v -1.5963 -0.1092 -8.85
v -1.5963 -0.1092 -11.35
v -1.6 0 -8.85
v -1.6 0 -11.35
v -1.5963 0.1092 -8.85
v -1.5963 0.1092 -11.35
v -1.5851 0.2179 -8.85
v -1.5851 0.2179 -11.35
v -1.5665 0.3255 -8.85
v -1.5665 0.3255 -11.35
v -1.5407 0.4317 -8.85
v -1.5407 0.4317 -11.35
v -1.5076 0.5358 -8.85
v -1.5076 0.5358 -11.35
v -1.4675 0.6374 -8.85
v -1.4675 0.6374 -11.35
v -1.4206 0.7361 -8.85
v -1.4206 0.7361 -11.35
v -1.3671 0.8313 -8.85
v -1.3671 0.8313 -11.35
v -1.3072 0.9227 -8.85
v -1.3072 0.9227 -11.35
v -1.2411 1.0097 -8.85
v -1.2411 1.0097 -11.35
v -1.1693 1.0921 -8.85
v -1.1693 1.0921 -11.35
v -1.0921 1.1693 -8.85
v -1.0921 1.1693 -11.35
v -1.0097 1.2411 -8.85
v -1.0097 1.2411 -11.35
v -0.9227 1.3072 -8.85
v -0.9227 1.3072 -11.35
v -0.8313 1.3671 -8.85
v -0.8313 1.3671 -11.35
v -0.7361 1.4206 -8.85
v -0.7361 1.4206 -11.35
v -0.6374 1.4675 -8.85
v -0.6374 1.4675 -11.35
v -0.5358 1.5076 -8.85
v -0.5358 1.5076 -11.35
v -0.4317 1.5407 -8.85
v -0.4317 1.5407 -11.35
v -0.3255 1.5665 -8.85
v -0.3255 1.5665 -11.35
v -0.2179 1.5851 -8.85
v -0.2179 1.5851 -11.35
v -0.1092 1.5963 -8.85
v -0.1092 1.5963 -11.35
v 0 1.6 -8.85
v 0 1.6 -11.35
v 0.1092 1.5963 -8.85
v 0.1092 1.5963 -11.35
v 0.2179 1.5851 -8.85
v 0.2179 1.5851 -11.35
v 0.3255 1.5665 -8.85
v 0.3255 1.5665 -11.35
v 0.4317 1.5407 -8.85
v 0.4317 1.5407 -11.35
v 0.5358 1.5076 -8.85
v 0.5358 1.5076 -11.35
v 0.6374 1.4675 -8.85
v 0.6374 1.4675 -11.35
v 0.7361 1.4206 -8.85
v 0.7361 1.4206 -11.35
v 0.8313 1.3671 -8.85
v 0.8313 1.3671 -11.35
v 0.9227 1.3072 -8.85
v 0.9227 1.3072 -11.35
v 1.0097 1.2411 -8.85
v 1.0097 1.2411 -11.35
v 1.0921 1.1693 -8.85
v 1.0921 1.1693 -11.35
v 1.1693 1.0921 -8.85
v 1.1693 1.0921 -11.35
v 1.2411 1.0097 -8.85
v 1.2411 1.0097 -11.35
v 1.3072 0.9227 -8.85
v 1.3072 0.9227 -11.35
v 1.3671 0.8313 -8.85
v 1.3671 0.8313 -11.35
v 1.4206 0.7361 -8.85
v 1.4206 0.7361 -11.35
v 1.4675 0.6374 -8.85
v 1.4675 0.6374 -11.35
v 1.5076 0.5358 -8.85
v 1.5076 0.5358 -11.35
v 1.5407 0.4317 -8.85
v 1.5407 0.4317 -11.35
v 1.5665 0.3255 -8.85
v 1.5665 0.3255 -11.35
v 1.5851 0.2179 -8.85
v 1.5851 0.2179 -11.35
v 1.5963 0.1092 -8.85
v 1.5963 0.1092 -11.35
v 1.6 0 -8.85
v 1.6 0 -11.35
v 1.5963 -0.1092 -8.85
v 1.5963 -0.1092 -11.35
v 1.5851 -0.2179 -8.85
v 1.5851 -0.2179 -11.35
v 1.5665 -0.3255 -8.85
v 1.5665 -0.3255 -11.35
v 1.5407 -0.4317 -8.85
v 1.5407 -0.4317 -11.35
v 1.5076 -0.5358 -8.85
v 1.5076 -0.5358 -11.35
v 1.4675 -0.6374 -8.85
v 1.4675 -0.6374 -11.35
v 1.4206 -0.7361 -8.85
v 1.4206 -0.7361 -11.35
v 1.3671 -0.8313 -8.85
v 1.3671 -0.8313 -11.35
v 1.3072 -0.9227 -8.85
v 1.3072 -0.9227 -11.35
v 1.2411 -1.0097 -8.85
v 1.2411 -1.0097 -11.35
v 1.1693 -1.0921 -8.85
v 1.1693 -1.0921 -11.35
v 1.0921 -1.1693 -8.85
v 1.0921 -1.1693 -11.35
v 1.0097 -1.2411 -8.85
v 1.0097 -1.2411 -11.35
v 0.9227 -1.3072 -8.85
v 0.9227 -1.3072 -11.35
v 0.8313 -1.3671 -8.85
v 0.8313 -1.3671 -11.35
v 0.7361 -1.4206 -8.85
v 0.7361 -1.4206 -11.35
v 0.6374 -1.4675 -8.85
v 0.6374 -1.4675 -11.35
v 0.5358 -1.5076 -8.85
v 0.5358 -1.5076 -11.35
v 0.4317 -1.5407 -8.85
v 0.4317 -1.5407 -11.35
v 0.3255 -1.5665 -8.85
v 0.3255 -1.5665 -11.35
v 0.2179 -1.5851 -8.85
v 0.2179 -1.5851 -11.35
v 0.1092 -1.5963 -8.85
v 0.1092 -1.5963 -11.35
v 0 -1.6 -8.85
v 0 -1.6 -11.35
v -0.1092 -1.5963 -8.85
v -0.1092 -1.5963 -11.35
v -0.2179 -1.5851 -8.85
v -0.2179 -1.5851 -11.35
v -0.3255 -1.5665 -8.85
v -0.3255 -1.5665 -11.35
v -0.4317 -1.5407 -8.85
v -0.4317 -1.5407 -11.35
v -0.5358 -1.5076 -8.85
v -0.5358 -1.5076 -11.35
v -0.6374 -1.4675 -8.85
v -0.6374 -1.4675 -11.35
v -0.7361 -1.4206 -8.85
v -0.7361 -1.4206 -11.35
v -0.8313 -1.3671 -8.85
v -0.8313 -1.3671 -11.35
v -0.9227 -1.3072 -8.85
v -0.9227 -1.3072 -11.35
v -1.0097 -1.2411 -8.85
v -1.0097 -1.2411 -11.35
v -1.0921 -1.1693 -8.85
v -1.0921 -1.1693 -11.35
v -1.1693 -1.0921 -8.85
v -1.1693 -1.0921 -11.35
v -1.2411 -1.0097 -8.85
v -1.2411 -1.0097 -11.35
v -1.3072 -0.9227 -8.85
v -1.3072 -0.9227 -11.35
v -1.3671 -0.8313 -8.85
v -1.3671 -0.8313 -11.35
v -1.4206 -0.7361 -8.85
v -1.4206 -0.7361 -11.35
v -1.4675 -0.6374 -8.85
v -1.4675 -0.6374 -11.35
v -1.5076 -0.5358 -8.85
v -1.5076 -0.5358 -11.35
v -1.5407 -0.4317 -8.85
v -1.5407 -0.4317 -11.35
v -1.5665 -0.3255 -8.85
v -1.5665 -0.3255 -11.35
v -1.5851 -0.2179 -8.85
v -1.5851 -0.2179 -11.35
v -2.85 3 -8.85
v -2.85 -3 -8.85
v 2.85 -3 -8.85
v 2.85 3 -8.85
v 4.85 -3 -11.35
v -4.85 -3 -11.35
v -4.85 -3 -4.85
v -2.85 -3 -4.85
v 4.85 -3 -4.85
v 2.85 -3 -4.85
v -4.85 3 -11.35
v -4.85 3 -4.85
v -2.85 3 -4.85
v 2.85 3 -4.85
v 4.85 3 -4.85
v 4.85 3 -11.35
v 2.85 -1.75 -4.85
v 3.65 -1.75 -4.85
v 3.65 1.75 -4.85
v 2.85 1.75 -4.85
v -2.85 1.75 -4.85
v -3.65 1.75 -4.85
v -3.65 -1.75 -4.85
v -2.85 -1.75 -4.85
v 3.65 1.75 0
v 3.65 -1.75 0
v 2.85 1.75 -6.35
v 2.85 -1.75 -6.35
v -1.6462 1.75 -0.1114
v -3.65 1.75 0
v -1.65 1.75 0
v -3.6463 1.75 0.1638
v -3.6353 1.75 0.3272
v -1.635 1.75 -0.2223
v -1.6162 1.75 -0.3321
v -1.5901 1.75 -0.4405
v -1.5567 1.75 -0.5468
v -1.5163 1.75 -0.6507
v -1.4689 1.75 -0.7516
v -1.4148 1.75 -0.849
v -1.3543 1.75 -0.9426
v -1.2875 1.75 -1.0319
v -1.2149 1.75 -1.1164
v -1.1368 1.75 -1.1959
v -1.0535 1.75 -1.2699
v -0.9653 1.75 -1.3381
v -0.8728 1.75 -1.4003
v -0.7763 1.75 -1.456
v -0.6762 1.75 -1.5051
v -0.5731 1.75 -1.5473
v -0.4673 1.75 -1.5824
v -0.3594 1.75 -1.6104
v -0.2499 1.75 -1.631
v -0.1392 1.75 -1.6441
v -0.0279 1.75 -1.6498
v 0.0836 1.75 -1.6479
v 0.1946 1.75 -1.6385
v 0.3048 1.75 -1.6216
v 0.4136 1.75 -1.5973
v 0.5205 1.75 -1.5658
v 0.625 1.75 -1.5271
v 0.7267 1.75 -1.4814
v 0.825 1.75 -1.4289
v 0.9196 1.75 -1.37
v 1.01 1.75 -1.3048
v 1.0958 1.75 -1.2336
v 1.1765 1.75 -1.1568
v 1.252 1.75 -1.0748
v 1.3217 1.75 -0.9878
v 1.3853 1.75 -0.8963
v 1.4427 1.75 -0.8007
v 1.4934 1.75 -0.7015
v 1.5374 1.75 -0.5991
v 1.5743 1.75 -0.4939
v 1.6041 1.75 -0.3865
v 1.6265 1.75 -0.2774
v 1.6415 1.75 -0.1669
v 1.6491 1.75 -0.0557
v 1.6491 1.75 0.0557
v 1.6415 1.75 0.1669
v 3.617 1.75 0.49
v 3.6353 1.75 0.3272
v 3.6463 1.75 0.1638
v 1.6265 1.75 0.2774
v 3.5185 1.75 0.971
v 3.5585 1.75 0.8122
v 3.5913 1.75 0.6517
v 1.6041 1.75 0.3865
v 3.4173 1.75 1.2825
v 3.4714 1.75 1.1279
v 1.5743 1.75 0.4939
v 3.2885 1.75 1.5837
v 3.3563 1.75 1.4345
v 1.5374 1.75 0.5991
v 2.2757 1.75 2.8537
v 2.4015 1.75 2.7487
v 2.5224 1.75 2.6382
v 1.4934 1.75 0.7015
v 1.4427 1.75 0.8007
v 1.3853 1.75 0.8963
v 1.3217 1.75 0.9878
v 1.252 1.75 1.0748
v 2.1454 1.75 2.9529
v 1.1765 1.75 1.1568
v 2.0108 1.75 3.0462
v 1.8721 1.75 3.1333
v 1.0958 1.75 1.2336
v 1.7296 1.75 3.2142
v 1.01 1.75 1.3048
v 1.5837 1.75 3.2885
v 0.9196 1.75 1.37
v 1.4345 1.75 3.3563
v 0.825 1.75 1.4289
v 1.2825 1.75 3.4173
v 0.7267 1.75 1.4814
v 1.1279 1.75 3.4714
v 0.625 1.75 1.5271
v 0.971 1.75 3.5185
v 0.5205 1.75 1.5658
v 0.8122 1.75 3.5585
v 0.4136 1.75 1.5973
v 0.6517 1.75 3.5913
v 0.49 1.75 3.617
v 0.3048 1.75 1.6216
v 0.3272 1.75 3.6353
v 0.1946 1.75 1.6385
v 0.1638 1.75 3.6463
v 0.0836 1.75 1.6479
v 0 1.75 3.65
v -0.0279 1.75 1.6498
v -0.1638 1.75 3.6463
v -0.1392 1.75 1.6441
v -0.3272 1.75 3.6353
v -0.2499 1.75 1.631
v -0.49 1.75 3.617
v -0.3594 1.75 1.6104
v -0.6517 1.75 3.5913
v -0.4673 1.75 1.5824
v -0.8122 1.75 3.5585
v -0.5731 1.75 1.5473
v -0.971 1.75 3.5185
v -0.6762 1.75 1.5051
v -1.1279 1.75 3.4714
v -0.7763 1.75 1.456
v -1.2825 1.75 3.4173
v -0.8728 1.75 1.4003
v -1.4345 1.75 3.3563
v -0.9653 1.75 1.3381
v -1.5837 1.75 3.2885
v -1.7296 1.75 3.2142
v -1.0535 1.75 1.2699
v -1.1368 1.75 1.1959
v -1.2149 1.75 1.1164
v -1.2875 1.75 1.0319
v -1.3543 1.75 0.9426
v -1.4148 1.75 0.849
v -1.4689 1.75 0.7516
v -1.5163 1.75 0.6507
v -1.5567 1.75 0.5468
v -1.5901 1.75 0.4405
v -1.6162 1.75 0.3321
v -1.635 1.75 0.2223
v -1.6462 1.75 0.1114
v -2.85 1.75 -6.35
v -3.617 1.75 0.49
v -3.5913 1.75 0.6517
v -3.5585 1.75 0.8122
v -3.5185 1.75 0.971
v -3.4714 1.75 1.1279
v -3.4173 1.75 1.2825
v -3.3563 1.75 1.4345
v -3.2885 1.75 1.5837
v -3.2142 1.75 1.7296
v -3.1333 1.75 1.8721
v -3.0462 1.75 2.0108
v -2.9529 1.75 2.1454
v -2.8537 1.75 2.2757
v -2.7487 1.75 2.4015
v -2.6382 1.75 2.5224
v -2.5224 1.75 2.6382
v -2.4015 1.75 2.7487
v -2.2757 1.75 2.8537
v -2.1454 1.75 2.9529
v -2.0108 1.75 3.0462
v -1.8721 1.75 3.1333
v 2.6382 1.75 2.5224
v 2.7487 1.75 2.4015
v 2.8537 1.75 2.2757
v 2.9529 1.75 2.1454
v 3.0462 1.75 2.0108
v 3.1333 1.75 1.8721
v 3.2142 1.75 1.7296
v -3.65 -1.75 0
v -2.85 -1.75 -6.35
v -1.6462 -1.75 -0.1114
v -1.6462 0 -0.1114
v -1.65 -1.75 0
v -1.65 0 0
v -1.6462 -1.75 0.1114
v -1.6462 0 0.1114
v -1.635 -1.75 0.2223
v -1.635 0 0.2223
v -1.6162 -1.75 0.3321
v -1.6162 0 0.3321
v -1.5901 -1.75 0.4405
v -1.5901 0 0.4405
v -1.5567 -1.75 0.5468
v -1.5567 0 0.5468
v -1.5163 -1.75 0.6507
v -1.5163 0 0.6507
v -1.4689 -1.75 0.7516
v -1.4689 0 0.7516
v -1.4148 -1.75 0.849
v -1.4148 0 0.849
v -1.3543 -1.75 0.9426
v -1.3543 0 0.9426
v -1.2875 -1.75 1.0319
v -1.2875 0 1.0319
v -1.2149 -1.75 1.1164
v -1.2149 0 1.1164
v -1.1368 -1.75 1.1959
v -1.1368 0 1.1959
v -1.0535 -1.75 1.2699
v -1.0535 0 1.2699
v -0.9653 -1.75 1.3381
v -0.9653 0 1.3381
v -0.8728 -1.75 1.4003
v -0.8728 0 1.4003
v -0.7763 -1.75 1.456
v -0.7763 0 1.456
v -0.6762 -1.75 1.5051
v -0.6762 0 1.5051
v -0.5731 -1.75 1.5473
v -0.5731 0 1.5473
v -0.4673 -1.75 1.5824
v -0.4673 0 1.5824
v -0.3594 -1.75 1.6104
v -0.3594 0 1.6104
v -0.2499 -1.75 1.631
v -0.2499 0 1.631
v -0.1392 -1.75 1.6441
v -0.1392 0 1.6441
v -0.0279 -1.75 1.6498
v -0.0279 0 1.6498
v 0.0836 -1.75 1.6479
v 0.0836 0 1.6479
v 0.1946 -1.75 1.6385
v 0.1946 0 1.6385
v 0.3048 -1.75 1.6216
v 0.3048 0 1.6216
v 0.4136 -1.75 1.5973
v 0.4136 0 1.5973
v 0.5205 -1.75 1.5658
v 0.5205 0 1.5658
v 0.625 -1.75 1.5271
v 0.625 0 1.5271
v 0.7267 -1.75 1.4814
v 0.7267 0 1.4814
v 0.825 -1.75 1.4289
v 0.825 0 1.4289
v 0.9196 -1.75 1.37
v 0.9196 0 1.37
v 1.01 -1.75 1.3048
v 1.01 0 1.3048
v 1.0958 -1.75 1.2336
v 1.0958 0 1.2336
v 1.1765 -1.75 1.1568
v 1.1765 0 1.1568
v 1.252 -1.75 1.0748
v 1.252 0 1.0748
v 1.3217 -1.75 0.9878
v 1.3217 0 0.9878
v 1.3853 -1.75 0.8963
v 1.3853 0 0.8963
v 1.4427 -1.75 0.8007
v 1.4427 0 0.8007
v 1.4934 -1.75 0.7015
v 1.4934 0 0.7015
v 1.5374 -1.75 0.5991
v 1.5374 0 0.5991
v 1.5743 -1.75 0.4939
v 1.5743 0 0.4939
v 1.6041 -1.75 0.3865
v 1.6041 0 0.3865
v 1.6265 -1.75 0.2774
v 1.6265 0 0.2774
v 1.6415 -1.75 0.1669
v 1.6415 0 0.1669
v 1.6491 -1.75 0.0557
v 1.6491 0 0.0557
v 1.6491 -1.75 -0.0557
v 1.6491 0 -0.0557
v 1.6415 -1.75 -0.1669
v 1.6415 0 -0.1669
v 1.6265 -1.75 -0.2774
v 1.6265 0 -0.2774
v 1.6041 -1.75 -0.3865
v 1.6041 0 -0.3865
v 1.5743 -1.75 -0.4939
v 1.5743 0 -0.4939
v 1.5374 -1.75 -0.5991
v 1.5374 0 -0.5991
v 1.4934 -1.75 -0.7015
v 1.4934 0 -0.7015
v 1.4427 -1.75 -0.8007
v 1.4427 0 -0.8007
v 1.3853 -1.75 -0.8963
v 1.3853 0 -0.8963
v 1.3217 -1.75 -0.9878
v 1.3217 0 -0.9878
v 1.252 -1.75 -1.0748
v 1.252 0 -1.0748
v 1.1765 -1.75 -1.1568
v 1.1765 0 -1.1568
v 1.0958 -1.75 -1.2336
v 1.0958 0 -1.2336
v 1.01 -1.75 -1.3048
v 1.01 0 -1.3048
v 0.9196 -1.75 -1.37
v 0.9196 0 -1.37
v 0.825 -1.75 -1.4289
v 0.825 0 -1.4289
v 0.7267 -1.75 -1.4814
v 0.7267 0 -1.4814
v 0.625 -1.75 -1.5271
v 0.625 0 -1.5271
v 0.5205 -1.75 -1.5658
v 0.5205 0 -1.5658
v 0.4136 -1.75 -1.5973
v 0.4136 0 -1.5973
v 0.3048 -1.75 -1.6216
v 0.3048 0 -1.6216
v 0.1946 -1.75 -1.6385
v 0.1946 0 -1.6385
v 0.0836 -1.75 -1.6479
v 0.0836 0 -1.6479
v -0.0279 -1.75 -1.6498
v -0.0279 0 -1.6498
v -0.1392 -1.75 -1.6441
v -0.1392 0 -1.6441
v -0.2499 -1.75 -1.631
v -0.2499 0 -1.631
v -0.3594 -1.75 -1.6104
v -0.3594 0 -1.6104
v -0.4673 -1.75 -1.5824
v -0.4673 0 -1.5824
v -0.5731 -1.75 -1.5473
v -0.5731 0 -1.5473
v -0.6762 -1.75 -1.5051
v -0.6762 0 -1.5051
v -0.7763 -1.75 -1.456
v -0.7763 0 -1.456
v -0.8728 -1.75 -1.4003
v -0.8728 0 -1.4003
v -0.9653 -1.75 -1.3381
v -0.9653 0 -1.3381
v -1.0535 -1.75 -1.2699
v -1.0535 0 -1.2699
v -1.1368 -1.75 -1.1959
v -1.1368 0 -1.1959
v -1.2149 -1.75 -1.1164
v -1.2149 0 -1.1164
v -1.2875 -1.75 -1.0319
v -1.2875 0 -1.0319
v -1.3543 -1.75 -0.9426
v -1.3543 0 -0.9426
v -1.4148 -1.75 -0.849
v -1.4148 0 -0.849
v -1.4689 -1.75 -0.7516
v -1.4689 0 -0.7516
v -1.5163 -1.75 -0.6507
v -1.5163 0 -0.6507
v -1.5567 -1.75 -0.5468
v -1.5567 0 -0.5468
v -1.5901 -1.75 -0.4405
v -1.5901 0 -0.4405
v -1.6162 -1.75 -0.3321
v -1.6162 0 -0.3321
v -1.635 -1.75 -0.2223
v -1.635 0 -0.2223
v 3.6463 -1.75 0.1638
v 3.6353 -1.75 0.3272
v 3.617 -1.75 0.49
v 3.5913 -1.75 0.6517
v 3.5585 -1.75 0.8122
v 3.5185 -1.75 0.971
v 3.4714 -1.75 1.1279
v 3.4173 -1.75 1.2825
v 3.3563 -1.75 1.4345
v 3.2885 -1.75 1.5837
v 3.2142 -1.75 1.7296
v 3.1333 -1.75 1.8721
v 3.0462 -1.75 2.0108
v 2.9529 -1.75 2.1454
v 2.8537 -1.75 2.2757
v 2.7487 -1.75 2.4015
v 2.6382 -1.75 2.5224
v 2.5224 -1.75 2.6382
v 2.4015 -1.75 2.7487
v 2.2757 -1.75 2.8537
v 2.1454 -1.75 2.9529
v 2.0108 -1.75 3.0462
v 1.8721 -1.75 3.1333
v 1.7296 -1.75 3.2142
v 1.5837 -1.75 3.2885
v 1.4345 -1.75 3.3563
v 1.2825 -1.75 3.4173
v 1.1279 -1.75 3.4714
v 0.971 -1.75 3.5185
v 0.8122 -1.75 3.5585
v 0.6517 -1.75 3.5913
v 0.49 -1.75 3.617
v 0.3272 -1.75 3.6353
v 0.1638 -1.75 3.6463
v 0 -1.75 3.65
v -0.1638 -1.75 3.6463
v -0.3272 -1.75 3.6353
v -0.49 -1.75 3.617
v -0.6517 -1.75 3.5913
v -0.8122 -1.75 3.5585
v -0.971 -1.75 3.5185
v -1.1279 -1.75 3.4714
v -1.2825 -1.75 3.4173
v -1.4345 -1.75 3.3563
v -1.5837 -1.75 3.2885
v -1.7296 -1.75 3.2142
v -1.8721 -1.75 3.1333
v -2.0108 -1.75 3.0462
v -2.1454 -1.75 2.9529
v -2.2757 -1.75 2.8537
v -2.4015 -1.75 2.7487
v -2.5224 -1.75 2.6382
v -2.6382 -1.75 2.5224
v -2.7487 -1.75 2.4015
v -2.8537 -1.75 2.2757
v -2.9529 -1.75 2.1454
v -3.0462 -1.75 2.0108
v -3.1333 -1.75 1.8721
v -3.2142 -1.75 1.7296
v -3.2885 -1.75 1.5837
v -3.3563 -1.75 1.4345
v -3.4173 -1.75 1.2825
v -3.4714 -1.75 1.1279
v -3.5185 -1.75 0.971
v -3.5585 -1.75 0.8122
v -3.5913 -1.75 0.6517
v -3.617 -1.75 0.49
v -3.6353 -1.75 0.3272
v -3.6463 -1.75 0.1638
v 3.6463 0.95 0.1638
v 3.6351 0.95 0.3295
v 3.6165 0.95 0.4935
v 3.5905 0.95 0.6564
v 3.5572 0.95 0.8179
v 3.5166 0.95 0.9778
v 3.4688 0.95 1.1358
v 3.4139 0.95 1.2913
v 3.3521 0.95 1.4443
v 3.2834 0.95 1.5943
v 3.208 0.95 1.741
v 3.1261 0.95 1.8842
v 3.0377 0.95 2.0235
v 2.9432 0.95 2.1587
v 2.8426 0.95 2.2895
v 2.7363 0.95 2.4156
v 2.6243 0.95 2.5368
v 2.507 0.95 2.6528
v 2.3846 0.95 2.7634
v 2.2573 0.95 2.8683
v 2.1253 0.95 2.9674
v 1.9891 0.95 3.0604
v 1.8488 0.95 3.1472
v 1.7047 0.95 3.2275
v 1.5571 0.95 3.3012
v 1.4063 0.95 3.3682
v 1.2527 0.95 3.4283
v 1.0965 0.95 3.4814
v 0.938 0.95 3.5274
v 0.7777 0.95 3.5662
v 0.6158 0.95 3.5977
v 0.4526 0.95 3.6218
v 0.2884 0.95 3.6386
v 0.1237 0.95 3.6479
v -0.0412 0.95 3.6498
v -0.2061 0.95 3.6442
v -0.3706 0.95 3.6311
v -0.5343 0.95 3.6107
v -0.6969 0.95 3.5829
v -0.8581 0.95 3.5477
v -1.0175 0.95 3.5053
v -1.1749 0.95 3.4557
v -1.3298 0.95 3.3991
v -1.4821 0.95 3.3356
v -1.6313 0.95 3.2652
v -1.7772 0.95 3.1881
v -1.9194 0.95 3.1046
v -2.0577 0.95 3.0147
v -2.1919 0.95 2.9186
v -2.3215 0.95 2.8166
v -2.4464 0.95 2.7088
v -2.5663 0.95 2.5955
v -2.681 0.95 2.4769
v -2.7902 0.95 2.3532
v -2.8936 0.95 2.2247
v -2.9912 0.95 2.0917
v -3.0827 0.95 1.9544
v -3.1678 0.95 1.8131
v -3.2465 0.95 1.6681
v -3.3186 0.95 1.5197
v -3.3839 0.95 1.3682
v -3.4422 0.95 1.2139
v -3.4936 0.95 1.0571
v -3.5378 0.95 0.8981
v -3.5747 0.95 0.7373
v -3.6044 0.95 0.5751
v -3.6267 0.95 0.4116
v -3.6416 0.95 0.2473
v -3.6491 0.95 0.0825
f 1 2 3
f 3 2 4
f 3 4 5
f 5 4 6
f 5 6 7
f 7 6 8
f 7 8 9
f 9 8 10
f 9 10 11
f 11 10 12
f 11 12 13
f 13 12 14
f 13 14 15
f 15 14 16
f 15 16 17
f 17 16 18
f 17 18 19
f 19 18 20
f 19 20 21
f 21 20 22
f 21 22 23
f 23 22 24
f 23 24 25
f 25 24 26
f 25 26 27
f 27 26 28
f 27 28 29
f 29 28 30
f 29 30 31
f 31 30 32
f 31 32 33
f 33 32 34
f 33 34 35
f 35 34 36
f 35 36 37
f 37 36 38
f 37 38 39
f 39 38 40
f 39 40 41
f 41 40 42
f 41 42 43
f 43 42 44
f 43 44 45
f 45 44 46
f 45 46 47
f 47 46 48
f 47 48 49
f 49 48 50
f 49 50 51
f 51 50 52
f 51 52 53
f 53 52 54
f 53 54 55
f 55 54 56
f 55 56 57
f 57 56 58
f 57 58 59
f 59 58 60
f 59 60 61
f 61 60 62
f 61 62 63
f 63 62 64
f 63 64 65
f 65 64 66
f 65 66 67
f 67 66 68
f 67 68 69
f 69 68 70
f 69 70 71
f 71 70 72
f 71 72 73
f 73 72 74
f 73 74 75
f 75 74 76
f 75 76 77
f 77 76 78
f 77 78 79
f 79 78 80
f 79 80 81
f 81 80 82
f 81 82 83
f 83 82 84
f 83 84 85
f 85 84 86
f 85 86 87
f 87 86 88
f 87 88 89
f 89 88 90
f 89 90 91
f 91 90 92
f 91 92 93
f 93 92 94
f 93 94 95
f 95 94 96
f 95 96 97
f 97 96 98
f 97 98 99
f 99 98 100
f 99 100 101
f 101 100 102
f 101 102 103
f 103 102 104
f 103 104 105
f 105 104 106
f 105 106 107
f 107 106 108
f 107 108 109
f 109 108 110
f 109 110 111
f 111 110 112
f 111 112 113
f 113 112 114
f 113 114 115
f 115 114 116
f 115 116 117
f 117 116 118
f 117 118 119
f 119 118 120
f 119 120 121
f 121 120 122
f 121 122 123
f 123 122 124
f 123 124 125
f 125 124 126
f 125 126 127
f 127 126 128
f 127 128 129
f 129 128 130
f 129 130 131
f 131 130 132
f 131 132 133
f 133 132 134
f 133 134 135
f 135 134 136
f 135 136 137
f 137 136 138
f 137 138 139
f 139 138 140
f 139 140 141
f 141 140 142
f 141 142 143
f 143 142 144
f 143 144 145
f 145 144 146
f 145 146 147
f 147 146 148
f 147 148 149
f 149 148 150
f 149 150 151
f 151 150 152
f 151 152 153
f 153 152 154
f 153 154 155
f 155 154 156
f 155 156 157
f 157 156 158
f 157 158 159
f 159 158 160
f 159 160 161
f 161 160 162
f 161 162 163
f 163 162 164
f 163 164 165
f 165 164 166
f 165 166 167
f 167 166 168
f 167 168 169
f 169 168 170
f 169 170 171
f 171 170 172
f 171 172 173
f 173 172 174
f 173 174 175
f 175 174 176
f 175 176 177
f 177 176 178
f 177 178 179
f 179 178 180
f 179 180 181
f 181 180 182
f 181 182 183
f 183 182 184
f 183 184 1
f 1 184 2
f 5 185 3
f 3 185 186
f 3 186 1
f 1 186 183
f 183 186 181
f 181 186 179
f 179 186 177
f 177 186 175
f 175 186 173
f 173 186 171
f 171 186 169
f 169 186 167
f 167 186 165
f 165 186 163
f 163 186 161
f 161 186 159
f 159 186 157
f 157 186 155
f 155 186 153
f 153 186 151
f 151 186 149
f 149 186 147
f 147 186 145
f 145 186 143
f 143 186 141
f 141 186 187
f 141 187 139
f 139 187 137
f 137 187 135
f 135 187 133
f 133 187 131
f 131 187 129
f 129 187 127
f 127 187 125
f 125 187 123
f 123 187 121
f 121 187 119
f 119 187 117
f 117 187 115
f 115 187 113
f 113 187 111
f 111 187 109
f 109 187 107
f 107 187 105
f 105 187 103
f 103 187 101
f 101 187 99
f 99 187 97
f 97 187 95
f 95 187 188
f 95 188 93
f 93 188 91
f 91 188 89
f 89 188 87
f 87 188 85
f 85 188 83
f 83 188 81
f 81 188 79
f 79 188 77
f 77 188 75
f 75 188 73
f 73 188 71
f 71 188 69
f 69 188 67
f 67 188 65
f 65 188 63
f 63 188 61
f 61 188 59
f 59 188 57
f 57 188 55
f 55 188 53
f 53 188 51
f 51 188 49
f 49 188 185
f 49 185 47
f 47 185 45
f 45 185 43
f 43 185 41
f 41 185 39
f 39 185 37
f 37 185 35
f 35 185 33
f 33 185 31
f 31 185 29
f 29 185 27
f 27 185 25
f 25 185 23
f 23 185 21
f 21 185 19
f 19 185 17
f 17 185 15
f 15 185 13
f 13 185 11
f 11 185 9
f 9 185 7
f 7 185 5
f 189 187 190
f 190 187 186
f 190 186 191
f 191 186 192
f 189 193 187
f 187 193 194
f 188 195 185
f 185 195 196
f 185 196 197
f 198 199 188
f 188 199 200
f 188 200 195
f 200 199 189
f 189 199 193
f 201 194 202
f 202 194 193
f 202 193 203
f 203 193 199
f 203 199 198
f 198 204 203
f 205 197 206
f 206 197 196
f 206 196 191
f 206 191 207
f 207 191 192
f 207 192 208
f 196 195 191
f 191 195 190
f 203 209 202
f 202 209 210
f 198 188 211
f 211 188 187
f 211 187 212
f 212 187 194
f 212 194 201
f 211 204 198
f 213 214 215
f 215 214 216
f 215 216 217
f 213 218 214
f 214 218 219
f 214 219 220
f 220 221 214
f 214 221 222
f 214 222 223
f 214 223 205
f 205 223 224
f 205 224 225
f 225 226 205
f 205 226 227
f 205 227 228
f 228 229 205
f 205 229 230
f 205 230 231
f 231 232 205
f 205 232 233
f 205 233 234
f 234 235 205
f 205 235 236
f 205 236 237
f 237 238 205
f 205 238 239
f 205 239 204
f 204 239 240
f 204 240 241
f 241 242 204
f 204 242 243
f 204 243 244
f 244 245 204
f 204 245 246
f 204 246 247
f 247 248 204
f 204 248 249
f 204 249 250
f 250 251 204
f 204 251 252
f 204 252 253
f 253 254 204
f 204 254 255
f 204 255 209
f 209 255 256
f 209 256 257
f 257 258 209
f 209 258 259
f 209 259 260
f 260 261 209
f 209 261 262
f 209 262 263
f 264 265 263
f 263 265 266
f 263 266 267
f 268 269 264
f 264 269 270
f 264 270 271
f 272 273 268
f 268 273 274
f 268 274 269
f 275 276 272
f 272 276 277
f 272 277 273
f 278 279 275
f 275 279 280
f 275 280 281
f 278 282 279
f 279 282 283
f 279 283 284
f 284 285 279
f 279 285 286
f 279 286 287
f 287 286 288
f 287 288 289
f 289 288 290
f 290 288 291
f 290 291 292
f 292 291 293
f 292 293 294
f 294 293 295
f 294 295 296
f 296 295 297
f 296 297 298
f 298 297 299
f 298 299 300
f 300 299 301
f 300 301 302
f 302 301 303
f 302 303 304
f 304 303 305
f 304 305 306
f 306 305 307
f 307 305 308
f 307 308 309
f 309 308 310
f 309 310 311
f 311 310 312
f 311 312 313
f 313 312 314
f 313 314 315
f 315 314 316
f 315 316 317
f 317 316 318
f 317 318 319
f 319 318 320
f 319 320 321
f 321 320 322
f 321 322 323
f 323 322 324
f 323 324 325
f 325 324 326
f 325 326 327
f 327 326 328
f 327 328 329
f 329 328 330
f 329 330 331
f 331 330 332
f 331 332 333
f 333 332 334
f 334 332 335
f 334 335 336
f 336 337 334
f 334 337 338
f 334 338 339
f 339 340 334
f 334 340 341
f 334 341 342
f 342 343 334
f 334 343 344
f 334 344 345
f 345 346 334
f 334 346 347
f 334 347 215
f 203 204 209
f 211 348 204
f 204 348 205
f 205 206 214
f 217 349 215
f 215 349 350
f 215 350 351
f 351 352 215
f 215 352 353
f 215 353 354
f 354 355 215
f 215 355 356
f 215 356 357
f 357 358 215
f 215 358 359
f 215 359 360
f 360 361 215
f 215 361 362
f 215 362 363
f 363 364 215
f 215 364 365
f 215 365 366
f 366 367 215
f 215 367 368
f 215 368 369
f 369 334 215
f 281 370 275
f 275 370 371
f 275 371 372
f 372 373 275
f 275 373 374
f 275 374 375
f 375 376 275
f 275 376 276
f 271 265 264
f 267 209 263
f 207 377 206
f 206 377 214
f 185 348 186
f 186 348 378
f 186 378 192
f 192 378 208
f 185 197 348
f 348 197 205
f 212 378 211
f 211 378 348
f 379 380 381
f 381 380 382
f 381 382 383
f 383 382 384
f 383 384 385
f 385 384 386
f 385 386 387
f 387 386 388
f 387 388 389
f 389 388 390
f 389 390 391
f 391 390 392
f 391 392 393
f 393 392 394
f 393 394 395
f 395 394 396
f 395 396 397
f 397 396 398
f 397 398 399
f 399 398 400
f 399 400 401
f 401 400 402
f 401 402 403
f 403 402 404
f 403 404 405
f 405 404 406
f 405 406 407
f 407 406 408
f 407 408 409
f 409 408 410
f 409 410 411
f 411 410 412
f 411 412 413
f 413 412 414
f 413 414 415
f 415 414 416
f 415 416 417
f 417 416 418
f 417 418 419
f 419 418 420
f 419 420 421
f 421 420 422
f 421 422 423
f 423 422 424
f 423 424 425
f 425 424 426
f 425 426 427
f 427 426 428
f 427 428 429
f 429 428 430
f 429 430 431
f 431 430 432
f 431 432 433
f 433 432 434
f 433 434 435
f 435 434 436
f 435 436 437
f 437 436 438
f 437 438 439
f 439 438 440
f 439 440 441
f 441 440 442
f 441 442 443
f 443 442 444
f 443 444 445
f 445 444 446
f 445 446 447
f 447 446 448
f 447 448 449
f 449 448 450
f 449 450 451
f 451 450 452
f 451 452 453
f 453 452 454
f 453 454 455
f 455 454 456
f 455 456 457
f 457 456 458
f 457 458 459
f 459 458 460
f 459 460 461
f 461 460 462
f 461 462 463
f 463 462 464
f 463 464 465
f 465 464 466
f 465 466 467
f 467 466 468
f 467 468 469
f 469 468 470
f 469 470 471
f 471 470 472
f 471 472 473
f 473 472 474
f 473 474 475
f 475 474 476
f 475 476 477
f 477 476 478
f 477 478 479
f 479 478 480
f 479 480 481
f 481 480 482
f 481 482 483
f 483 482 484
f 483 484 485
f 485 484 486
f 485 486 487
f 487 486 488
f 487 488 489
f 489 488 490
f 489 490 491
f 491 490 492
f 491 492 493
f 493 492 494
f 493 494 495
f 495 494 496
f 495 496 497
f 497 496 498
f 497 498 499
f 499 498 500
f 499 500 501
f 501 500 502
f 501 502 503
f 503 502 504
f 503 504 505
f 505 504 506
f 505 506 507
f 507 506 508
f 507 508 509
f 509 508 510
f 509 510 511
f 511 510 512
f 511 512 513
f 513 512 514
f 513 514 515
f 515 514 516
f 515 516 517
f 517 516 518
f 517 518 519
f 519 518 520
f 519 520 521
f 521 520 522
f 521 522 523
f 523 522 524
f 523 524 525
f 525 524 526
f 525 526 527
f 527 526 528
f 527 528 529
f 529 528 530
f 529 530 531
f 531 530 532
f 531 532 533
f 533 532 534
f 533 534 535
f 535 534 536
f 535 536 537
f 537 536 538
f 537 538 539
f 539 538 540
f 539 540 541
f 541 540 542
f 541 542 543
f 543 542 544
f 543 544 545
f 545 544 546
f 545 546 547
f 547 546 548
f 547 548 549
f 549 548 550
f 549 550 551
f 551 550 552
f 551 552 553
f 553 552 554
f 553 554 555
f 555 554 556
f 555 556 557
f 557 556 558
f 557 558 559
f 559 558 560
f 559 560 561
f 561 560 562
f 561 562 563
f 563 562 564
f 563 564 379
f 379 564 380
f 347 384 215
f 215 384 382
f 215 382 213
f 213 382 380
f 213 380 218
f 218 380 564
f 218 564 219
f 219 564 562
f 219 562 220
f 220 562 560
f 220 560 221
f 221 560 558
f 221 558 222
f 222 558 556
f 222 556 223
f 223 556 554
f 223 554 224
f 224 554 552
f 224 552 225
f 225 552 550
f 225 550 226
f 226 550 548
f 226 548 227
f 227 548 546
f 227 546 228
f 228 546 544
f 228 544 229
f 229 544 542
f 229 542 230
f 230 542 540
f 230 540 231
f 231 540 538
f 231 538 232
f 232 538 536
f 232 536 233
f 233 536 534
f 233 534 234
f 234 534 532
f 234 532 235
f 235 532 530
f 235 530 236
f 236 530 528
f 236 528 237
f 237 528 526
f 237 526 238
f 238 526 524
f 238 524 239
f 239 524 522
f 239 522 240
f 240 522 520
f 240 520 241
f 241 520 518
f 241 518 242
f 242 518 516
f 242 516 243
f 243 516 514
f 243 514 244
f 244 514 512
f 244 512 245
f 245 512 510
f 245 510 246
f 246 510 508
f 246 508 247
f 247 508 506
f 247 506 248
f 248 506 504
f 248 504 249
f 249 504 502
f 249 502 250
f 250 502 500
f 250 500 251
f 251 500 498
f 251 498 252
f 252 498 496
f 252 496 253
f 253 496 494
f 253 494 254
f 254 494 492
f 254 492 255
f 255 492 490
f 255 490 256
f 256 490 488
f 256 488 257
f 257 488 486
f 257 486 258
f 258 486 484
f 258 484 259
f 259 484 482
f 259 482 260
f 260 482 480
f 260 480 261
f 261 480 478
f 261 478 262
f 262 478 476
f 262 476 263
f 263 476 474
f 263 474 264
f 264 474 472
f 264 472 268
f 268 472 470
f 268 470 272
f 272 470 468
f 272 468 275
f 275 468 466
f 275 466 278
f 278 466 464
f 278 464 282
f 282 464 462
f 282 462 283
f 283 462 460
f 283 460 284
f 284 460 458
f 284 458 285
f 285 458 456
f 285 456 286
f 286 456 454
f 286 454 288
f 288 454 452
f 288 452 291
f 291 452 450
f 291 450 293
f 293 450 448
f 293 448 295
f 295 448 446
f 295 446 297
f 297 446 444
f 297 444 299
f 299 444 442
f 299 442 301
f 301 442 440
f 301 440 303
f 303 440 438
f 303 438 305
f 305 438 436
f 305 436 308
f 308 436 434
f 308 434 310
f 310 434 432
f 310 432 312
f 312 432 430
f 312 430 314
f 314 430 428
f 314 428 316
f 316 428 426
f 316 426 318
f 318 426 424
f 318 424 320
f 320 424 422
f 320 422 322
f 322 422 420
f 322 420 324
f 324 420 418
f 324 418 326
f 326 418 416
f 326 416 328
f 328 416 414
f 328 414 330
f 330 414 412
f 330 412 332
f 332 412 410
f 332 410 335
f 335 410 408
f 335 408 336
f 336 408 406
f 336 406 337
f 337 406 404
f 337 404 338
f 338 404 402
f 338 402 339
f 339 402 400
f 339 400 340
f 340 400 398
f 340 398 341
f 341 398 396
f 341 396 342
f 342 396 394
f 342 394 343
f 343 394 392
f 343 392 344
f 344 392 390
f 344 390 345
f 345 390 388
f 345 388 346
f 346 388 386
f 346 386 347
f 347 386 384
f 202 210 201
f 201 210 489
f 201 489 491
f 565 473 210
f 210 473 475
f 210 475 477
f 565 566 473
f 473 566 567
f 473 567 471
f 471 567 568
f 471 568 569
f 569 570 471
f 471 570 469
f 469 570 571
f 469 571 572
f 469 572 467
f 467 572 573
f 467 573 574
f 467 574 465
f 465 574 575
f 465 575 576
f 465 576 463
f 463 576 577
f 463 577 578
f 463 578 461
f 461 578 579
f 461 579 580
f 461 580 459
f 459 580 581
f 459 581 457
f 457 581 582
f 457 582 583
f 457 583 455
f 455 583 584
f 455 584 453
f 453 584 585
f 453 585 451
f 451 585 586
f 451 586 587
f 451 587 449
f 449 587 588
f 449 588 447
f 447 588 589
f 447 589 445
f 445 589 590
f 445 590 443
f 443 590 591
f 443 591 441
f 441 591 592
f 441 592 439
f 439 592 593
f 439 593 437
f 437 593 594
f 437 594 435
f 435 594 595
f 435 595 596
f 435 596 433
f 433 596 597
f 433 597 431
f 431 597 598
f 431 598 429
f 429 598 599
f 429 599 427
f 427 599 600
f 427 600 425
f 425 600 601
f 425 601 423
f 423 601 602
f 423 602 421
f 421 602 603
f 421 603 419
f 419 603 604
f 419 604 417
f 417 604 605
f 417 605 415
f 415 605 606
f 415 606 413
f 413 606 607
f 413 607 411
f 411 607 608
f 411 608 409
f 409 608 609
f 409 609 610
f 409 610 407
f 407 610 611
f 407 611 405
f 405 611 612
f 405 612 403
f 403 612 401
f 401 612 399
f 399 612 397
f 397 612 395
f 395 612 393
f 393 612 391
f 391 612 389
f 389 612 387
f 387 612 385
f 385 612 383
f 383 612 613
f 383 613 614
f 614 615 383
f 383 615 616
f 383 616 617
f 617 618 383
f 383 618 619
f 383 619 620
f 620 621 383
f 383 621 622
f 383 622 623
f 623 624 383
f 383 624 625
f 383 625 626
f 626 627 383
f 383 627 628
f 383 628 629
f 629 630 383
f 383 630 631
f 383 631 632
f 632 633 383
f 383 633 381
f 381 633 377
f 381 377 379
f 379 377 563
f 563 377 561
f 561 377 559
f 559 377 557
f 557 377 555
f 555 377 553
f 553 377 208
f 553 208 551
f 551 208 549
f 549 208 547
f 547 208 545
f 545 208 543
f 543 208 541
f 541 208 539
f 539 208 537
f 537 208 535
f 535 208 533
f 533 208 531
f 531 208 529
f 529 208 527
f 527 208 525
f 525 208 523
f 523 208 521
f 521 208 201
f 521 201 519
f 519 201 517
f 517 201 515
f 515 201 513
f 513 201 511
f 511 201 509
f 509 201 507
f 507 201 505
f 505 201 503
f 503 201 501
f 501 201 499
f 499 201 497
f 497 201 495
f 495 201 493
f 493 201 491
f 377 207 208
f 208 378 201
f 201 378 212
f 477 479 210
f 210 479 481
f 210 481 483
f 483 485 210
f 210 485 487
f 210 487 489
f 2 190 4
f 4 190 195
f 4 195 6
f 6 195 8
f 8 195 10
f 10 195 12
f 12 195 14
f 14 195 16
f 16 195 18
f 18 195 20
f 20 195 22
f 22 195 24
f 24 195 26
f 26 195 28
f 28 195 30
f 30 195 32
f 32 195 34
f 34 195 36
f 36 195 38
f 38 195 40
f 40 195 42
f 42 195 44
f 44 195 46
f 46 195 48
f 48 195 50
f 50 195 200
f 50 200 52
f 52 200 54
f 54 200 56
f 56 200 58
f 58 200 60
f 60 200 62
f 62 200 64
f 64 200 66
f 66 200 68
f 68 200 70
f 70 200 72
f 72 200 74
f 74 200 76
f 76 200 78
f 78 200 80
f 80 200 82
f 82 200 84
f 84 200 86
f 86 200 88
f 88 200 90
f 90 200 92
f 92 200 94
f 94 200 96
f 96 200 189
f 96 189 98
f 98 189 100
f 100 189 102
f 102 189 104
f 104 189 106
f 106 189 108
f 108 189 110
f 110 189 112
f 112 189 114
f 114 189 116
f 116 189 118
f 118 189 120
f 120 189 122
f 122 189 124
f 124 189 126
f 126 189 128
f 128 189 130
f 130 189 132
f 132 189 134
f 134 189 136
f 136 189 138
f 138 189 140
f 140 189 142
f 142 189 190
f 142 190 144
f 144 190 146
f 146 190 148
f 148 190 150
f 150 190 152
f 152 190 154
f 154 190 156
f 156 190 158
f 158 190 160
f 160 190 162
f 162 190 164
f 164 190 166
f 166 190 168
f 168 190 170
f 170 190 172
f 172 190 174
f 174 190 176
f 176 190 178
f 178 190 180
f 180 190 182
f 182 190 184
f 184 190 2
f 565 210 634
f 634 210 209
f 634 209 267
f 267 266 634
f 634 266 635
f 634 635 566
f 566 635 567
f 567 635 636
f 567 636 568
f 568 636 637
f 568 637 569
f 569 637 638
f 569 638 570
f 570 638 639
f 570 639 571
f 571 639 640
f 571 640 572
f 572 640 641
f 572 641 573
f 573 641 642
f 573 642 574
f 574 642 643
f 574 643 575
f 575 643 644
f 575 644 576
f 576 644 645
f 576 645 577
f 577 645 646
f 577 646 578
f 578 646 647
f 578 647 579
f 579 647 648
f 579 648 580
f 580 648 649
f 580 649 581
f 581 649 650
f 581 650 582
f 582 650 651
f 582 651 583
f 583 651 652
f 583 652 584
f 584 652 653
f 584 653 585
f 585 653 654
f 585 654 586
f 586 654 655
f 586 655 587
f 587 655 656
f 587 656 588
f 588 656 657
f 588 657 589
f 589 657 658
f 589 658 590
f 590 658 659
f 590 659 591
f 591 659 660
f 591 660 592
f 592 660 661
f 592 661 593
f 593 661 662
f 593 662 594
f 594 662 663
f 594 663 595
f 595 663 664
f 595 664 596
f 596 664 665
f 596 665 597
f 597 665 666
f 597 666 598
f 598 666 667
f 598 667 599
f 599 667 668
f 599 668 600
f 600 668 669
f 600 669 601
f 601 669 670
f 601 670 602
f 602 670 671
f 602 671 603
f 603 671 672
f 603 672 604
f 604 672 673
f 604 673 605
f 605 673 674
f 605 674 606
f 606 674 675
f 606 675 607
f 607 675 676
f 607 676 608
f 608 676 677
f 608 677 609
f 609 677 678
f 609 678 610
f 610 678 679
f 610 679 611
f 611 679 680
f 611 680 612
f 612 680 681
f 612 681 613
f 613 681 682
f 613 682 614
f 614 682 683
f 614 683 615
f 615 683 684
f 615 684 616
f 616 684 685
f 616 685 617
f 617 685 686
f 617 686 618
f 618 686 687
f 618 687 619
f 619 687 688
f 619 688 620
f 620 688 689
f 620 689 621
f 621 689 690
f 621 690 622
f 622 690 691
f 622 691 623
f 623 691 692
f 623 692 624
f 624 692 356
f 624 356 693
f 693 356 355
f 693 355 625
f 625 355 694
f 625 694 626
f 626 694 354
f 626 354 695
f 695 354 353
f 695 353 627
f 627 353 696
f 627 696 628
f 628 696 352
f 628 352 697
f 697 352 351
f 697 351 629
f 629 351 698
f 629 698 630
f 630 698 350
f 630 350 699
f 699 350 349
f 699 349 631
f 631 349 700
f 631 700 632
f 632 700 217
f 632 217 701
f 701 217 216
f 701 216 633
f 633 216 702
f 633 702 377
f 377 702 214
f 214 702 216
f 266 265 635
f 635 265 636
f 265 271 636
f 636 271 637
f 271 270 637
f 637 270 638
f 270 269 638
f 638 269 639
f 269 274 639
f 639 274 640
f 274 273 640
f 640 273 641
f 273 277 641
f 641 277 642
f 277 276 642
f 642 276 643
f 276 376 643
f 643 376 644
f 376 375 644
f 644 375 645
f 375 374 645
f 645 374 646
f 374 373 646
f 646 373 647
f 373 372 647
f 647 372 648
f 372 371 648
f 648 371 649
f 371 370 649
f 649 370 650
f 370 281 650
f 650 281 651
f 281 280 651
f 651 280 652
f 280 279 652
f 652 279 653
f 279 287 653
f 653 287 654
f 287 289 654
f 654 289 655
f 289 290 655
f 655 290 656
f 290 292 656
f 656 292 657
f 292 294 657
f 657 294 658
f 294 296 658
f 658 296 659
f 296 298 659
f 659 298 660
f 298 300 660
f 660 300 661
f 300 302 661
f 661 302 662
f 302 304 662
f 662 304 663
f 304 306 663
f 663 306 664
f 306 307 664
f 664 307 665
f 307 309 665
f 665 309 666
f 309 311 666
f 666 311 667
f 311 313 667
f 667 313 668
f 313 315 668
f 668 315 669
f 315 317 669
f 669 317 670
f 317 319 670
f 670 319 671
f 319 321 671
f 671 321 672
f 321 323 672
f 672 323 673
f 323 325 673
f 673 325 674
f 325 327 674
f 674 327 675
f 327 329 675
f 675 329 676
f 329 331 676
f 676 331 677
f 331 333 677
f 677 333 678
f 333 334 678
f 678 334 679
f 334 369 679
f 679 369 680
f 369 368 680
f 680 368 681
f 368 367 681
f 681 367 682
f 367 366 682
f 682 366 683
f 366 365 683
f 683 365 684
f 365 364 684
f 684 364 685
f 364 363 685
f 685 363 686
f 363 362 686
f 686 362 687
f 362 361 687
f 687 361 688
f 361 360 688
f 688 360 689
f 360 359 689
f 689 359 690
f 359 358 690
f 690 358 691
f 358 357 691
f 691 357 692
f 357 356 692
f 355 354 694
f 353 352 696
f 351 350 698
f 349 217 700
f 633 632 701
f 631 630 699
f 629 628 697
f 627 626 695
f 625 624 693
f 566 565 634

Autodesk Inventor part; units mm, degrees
ref_plane "YZ Plane" through (0, 0, 0) normal (1, 0, 0) x (0, 1, 0)
ref_plane "XZ Plane" through (0, 0, 0) normal (0, 1, 0) x (-1, 0, 0)
ref_plane "XY Plane" through (0, 0, 0) normal (0, 0, 1) x (1, 0, 0)
sketch "Sketch1" plane through (0, 0, 0) normal (0, 1, 0) x (-1, 0, 0)
  circle A0 centre (0, 0) radius 1.65
  arc A1 (3.65, 0) -> (-3.65, 0) centre (0, 0) ccw
  line L0 (-3.65, 0) -> (-3.65, -11.35)
  line L1 (-3.65, -11.35) -> (3.65, -11.35)
  line L2 (3.65, -11.35) -> (3.65, 0)
  line L3 (0, 0) -> (0, -26.2529)
  line L4 (2.85, -11.35) -> (-2.85, -11.35)
  line L5 (-2.85, -9.35) -> (-2.85, -6.35)
  line L6 (-2.85, -6.35) -> (2.85, -6.35)
  line L7 (2.85, -6.35) -> (2.85, -9.35)
  line L8 (2.85, -9.35) -> (-2.85, -9.35)
  dimension "d0" = 3.3
  dimension "d1" = 2
  dimension "d2" = 15
  dimension "d3" = 5.7
  dimension "d4" = 5
  dimension "d5" = 2
  dimension "d13" = 3.65
  dimension "d14" = 7.3
  dimension "d15" = 0.8
extrude "Extrusion1" add sketch "Sketch1" along normal mid plane 3.5
sketch "Sketch3" plane through (0, 0, 0) normal (0, 1, 0) x (-1, 0, 0)
  line L0 (-2.85, -6.35) -> (2.85, -6.35) construction
  line L1 (2.85, -6.35) -> (2.85, -9.35) construction
  line L2 (2.85, -9.35) -> (-2.85, -9.35) construction
  line L3 (-2.85, -9.35) -> (-2.85, -6.35) construction
  circle A0 centre (0, 0) radius 1.65 construction
  arc A1 (3.65, 0) -> (-3.65, 0) centre (0, 0) ccw construction
  line L4 (-3.65, 0) -> (-3.65, -11.35) projected
  line L5 (-3.65, -11.35) -> (3.65, -11.35) projected
  line L6 (3.65, -11.35) -> (3.65, 0) projected
  line L7 (3.65, -11.35) -> (-3.65, -11.35)
  line L8 (-3.65, -11.35) -> (-3.65, -8.85)
  line L9 (-3.65, -8.85) -> (3.65, -8.85)
  line L10 (3.65, -8.85) -> (3.65, -11.35)
  line L11 (4.85, -4.85) -> (2.85, -4.85)
  line L12 (2.85, -4.85) -> (2.85, -11.35)
  line L13 (2.85, -11.35) -> (4.85, -11.35)
  line L14 (4.85, -11.35) -> (4.85, -4.85)
  line L15 (-2.85, -4.85) -> (-4.85, -4.85)
  line L16 (-4.85, -4.85) -> (-4.85, -11.35)
  line L17 (-4.85, -11.35) -> (-2.85, -11.35)
  line L18 (-2.85, -11.35) -> (-2.85, -4.85)
  line L19 (-2.85, -9.35) -> (-2.85, -6.35) projected
  line L20 (2.85, -6.35) -> (2.85, -9.35) projected
  dimension "d16" = 2
  dimension "d17" = 1.5
extrude "Extrusion2" add sketch "Sketch3" along normal mid plane 6
sketch "Sketch5" plane through (4.85, 3, -11.35) normal (0, 0, -1) x (-1, 0, 0)
  circle A0 centre (4.85, -3) radius 1.6
  dimension "d18" = 3.2
extrude "Extrusion4" cut sketch "Sketch5" against normal up to surface (2.5 mm away)
properties part number "connectiong-rod-star-side"
